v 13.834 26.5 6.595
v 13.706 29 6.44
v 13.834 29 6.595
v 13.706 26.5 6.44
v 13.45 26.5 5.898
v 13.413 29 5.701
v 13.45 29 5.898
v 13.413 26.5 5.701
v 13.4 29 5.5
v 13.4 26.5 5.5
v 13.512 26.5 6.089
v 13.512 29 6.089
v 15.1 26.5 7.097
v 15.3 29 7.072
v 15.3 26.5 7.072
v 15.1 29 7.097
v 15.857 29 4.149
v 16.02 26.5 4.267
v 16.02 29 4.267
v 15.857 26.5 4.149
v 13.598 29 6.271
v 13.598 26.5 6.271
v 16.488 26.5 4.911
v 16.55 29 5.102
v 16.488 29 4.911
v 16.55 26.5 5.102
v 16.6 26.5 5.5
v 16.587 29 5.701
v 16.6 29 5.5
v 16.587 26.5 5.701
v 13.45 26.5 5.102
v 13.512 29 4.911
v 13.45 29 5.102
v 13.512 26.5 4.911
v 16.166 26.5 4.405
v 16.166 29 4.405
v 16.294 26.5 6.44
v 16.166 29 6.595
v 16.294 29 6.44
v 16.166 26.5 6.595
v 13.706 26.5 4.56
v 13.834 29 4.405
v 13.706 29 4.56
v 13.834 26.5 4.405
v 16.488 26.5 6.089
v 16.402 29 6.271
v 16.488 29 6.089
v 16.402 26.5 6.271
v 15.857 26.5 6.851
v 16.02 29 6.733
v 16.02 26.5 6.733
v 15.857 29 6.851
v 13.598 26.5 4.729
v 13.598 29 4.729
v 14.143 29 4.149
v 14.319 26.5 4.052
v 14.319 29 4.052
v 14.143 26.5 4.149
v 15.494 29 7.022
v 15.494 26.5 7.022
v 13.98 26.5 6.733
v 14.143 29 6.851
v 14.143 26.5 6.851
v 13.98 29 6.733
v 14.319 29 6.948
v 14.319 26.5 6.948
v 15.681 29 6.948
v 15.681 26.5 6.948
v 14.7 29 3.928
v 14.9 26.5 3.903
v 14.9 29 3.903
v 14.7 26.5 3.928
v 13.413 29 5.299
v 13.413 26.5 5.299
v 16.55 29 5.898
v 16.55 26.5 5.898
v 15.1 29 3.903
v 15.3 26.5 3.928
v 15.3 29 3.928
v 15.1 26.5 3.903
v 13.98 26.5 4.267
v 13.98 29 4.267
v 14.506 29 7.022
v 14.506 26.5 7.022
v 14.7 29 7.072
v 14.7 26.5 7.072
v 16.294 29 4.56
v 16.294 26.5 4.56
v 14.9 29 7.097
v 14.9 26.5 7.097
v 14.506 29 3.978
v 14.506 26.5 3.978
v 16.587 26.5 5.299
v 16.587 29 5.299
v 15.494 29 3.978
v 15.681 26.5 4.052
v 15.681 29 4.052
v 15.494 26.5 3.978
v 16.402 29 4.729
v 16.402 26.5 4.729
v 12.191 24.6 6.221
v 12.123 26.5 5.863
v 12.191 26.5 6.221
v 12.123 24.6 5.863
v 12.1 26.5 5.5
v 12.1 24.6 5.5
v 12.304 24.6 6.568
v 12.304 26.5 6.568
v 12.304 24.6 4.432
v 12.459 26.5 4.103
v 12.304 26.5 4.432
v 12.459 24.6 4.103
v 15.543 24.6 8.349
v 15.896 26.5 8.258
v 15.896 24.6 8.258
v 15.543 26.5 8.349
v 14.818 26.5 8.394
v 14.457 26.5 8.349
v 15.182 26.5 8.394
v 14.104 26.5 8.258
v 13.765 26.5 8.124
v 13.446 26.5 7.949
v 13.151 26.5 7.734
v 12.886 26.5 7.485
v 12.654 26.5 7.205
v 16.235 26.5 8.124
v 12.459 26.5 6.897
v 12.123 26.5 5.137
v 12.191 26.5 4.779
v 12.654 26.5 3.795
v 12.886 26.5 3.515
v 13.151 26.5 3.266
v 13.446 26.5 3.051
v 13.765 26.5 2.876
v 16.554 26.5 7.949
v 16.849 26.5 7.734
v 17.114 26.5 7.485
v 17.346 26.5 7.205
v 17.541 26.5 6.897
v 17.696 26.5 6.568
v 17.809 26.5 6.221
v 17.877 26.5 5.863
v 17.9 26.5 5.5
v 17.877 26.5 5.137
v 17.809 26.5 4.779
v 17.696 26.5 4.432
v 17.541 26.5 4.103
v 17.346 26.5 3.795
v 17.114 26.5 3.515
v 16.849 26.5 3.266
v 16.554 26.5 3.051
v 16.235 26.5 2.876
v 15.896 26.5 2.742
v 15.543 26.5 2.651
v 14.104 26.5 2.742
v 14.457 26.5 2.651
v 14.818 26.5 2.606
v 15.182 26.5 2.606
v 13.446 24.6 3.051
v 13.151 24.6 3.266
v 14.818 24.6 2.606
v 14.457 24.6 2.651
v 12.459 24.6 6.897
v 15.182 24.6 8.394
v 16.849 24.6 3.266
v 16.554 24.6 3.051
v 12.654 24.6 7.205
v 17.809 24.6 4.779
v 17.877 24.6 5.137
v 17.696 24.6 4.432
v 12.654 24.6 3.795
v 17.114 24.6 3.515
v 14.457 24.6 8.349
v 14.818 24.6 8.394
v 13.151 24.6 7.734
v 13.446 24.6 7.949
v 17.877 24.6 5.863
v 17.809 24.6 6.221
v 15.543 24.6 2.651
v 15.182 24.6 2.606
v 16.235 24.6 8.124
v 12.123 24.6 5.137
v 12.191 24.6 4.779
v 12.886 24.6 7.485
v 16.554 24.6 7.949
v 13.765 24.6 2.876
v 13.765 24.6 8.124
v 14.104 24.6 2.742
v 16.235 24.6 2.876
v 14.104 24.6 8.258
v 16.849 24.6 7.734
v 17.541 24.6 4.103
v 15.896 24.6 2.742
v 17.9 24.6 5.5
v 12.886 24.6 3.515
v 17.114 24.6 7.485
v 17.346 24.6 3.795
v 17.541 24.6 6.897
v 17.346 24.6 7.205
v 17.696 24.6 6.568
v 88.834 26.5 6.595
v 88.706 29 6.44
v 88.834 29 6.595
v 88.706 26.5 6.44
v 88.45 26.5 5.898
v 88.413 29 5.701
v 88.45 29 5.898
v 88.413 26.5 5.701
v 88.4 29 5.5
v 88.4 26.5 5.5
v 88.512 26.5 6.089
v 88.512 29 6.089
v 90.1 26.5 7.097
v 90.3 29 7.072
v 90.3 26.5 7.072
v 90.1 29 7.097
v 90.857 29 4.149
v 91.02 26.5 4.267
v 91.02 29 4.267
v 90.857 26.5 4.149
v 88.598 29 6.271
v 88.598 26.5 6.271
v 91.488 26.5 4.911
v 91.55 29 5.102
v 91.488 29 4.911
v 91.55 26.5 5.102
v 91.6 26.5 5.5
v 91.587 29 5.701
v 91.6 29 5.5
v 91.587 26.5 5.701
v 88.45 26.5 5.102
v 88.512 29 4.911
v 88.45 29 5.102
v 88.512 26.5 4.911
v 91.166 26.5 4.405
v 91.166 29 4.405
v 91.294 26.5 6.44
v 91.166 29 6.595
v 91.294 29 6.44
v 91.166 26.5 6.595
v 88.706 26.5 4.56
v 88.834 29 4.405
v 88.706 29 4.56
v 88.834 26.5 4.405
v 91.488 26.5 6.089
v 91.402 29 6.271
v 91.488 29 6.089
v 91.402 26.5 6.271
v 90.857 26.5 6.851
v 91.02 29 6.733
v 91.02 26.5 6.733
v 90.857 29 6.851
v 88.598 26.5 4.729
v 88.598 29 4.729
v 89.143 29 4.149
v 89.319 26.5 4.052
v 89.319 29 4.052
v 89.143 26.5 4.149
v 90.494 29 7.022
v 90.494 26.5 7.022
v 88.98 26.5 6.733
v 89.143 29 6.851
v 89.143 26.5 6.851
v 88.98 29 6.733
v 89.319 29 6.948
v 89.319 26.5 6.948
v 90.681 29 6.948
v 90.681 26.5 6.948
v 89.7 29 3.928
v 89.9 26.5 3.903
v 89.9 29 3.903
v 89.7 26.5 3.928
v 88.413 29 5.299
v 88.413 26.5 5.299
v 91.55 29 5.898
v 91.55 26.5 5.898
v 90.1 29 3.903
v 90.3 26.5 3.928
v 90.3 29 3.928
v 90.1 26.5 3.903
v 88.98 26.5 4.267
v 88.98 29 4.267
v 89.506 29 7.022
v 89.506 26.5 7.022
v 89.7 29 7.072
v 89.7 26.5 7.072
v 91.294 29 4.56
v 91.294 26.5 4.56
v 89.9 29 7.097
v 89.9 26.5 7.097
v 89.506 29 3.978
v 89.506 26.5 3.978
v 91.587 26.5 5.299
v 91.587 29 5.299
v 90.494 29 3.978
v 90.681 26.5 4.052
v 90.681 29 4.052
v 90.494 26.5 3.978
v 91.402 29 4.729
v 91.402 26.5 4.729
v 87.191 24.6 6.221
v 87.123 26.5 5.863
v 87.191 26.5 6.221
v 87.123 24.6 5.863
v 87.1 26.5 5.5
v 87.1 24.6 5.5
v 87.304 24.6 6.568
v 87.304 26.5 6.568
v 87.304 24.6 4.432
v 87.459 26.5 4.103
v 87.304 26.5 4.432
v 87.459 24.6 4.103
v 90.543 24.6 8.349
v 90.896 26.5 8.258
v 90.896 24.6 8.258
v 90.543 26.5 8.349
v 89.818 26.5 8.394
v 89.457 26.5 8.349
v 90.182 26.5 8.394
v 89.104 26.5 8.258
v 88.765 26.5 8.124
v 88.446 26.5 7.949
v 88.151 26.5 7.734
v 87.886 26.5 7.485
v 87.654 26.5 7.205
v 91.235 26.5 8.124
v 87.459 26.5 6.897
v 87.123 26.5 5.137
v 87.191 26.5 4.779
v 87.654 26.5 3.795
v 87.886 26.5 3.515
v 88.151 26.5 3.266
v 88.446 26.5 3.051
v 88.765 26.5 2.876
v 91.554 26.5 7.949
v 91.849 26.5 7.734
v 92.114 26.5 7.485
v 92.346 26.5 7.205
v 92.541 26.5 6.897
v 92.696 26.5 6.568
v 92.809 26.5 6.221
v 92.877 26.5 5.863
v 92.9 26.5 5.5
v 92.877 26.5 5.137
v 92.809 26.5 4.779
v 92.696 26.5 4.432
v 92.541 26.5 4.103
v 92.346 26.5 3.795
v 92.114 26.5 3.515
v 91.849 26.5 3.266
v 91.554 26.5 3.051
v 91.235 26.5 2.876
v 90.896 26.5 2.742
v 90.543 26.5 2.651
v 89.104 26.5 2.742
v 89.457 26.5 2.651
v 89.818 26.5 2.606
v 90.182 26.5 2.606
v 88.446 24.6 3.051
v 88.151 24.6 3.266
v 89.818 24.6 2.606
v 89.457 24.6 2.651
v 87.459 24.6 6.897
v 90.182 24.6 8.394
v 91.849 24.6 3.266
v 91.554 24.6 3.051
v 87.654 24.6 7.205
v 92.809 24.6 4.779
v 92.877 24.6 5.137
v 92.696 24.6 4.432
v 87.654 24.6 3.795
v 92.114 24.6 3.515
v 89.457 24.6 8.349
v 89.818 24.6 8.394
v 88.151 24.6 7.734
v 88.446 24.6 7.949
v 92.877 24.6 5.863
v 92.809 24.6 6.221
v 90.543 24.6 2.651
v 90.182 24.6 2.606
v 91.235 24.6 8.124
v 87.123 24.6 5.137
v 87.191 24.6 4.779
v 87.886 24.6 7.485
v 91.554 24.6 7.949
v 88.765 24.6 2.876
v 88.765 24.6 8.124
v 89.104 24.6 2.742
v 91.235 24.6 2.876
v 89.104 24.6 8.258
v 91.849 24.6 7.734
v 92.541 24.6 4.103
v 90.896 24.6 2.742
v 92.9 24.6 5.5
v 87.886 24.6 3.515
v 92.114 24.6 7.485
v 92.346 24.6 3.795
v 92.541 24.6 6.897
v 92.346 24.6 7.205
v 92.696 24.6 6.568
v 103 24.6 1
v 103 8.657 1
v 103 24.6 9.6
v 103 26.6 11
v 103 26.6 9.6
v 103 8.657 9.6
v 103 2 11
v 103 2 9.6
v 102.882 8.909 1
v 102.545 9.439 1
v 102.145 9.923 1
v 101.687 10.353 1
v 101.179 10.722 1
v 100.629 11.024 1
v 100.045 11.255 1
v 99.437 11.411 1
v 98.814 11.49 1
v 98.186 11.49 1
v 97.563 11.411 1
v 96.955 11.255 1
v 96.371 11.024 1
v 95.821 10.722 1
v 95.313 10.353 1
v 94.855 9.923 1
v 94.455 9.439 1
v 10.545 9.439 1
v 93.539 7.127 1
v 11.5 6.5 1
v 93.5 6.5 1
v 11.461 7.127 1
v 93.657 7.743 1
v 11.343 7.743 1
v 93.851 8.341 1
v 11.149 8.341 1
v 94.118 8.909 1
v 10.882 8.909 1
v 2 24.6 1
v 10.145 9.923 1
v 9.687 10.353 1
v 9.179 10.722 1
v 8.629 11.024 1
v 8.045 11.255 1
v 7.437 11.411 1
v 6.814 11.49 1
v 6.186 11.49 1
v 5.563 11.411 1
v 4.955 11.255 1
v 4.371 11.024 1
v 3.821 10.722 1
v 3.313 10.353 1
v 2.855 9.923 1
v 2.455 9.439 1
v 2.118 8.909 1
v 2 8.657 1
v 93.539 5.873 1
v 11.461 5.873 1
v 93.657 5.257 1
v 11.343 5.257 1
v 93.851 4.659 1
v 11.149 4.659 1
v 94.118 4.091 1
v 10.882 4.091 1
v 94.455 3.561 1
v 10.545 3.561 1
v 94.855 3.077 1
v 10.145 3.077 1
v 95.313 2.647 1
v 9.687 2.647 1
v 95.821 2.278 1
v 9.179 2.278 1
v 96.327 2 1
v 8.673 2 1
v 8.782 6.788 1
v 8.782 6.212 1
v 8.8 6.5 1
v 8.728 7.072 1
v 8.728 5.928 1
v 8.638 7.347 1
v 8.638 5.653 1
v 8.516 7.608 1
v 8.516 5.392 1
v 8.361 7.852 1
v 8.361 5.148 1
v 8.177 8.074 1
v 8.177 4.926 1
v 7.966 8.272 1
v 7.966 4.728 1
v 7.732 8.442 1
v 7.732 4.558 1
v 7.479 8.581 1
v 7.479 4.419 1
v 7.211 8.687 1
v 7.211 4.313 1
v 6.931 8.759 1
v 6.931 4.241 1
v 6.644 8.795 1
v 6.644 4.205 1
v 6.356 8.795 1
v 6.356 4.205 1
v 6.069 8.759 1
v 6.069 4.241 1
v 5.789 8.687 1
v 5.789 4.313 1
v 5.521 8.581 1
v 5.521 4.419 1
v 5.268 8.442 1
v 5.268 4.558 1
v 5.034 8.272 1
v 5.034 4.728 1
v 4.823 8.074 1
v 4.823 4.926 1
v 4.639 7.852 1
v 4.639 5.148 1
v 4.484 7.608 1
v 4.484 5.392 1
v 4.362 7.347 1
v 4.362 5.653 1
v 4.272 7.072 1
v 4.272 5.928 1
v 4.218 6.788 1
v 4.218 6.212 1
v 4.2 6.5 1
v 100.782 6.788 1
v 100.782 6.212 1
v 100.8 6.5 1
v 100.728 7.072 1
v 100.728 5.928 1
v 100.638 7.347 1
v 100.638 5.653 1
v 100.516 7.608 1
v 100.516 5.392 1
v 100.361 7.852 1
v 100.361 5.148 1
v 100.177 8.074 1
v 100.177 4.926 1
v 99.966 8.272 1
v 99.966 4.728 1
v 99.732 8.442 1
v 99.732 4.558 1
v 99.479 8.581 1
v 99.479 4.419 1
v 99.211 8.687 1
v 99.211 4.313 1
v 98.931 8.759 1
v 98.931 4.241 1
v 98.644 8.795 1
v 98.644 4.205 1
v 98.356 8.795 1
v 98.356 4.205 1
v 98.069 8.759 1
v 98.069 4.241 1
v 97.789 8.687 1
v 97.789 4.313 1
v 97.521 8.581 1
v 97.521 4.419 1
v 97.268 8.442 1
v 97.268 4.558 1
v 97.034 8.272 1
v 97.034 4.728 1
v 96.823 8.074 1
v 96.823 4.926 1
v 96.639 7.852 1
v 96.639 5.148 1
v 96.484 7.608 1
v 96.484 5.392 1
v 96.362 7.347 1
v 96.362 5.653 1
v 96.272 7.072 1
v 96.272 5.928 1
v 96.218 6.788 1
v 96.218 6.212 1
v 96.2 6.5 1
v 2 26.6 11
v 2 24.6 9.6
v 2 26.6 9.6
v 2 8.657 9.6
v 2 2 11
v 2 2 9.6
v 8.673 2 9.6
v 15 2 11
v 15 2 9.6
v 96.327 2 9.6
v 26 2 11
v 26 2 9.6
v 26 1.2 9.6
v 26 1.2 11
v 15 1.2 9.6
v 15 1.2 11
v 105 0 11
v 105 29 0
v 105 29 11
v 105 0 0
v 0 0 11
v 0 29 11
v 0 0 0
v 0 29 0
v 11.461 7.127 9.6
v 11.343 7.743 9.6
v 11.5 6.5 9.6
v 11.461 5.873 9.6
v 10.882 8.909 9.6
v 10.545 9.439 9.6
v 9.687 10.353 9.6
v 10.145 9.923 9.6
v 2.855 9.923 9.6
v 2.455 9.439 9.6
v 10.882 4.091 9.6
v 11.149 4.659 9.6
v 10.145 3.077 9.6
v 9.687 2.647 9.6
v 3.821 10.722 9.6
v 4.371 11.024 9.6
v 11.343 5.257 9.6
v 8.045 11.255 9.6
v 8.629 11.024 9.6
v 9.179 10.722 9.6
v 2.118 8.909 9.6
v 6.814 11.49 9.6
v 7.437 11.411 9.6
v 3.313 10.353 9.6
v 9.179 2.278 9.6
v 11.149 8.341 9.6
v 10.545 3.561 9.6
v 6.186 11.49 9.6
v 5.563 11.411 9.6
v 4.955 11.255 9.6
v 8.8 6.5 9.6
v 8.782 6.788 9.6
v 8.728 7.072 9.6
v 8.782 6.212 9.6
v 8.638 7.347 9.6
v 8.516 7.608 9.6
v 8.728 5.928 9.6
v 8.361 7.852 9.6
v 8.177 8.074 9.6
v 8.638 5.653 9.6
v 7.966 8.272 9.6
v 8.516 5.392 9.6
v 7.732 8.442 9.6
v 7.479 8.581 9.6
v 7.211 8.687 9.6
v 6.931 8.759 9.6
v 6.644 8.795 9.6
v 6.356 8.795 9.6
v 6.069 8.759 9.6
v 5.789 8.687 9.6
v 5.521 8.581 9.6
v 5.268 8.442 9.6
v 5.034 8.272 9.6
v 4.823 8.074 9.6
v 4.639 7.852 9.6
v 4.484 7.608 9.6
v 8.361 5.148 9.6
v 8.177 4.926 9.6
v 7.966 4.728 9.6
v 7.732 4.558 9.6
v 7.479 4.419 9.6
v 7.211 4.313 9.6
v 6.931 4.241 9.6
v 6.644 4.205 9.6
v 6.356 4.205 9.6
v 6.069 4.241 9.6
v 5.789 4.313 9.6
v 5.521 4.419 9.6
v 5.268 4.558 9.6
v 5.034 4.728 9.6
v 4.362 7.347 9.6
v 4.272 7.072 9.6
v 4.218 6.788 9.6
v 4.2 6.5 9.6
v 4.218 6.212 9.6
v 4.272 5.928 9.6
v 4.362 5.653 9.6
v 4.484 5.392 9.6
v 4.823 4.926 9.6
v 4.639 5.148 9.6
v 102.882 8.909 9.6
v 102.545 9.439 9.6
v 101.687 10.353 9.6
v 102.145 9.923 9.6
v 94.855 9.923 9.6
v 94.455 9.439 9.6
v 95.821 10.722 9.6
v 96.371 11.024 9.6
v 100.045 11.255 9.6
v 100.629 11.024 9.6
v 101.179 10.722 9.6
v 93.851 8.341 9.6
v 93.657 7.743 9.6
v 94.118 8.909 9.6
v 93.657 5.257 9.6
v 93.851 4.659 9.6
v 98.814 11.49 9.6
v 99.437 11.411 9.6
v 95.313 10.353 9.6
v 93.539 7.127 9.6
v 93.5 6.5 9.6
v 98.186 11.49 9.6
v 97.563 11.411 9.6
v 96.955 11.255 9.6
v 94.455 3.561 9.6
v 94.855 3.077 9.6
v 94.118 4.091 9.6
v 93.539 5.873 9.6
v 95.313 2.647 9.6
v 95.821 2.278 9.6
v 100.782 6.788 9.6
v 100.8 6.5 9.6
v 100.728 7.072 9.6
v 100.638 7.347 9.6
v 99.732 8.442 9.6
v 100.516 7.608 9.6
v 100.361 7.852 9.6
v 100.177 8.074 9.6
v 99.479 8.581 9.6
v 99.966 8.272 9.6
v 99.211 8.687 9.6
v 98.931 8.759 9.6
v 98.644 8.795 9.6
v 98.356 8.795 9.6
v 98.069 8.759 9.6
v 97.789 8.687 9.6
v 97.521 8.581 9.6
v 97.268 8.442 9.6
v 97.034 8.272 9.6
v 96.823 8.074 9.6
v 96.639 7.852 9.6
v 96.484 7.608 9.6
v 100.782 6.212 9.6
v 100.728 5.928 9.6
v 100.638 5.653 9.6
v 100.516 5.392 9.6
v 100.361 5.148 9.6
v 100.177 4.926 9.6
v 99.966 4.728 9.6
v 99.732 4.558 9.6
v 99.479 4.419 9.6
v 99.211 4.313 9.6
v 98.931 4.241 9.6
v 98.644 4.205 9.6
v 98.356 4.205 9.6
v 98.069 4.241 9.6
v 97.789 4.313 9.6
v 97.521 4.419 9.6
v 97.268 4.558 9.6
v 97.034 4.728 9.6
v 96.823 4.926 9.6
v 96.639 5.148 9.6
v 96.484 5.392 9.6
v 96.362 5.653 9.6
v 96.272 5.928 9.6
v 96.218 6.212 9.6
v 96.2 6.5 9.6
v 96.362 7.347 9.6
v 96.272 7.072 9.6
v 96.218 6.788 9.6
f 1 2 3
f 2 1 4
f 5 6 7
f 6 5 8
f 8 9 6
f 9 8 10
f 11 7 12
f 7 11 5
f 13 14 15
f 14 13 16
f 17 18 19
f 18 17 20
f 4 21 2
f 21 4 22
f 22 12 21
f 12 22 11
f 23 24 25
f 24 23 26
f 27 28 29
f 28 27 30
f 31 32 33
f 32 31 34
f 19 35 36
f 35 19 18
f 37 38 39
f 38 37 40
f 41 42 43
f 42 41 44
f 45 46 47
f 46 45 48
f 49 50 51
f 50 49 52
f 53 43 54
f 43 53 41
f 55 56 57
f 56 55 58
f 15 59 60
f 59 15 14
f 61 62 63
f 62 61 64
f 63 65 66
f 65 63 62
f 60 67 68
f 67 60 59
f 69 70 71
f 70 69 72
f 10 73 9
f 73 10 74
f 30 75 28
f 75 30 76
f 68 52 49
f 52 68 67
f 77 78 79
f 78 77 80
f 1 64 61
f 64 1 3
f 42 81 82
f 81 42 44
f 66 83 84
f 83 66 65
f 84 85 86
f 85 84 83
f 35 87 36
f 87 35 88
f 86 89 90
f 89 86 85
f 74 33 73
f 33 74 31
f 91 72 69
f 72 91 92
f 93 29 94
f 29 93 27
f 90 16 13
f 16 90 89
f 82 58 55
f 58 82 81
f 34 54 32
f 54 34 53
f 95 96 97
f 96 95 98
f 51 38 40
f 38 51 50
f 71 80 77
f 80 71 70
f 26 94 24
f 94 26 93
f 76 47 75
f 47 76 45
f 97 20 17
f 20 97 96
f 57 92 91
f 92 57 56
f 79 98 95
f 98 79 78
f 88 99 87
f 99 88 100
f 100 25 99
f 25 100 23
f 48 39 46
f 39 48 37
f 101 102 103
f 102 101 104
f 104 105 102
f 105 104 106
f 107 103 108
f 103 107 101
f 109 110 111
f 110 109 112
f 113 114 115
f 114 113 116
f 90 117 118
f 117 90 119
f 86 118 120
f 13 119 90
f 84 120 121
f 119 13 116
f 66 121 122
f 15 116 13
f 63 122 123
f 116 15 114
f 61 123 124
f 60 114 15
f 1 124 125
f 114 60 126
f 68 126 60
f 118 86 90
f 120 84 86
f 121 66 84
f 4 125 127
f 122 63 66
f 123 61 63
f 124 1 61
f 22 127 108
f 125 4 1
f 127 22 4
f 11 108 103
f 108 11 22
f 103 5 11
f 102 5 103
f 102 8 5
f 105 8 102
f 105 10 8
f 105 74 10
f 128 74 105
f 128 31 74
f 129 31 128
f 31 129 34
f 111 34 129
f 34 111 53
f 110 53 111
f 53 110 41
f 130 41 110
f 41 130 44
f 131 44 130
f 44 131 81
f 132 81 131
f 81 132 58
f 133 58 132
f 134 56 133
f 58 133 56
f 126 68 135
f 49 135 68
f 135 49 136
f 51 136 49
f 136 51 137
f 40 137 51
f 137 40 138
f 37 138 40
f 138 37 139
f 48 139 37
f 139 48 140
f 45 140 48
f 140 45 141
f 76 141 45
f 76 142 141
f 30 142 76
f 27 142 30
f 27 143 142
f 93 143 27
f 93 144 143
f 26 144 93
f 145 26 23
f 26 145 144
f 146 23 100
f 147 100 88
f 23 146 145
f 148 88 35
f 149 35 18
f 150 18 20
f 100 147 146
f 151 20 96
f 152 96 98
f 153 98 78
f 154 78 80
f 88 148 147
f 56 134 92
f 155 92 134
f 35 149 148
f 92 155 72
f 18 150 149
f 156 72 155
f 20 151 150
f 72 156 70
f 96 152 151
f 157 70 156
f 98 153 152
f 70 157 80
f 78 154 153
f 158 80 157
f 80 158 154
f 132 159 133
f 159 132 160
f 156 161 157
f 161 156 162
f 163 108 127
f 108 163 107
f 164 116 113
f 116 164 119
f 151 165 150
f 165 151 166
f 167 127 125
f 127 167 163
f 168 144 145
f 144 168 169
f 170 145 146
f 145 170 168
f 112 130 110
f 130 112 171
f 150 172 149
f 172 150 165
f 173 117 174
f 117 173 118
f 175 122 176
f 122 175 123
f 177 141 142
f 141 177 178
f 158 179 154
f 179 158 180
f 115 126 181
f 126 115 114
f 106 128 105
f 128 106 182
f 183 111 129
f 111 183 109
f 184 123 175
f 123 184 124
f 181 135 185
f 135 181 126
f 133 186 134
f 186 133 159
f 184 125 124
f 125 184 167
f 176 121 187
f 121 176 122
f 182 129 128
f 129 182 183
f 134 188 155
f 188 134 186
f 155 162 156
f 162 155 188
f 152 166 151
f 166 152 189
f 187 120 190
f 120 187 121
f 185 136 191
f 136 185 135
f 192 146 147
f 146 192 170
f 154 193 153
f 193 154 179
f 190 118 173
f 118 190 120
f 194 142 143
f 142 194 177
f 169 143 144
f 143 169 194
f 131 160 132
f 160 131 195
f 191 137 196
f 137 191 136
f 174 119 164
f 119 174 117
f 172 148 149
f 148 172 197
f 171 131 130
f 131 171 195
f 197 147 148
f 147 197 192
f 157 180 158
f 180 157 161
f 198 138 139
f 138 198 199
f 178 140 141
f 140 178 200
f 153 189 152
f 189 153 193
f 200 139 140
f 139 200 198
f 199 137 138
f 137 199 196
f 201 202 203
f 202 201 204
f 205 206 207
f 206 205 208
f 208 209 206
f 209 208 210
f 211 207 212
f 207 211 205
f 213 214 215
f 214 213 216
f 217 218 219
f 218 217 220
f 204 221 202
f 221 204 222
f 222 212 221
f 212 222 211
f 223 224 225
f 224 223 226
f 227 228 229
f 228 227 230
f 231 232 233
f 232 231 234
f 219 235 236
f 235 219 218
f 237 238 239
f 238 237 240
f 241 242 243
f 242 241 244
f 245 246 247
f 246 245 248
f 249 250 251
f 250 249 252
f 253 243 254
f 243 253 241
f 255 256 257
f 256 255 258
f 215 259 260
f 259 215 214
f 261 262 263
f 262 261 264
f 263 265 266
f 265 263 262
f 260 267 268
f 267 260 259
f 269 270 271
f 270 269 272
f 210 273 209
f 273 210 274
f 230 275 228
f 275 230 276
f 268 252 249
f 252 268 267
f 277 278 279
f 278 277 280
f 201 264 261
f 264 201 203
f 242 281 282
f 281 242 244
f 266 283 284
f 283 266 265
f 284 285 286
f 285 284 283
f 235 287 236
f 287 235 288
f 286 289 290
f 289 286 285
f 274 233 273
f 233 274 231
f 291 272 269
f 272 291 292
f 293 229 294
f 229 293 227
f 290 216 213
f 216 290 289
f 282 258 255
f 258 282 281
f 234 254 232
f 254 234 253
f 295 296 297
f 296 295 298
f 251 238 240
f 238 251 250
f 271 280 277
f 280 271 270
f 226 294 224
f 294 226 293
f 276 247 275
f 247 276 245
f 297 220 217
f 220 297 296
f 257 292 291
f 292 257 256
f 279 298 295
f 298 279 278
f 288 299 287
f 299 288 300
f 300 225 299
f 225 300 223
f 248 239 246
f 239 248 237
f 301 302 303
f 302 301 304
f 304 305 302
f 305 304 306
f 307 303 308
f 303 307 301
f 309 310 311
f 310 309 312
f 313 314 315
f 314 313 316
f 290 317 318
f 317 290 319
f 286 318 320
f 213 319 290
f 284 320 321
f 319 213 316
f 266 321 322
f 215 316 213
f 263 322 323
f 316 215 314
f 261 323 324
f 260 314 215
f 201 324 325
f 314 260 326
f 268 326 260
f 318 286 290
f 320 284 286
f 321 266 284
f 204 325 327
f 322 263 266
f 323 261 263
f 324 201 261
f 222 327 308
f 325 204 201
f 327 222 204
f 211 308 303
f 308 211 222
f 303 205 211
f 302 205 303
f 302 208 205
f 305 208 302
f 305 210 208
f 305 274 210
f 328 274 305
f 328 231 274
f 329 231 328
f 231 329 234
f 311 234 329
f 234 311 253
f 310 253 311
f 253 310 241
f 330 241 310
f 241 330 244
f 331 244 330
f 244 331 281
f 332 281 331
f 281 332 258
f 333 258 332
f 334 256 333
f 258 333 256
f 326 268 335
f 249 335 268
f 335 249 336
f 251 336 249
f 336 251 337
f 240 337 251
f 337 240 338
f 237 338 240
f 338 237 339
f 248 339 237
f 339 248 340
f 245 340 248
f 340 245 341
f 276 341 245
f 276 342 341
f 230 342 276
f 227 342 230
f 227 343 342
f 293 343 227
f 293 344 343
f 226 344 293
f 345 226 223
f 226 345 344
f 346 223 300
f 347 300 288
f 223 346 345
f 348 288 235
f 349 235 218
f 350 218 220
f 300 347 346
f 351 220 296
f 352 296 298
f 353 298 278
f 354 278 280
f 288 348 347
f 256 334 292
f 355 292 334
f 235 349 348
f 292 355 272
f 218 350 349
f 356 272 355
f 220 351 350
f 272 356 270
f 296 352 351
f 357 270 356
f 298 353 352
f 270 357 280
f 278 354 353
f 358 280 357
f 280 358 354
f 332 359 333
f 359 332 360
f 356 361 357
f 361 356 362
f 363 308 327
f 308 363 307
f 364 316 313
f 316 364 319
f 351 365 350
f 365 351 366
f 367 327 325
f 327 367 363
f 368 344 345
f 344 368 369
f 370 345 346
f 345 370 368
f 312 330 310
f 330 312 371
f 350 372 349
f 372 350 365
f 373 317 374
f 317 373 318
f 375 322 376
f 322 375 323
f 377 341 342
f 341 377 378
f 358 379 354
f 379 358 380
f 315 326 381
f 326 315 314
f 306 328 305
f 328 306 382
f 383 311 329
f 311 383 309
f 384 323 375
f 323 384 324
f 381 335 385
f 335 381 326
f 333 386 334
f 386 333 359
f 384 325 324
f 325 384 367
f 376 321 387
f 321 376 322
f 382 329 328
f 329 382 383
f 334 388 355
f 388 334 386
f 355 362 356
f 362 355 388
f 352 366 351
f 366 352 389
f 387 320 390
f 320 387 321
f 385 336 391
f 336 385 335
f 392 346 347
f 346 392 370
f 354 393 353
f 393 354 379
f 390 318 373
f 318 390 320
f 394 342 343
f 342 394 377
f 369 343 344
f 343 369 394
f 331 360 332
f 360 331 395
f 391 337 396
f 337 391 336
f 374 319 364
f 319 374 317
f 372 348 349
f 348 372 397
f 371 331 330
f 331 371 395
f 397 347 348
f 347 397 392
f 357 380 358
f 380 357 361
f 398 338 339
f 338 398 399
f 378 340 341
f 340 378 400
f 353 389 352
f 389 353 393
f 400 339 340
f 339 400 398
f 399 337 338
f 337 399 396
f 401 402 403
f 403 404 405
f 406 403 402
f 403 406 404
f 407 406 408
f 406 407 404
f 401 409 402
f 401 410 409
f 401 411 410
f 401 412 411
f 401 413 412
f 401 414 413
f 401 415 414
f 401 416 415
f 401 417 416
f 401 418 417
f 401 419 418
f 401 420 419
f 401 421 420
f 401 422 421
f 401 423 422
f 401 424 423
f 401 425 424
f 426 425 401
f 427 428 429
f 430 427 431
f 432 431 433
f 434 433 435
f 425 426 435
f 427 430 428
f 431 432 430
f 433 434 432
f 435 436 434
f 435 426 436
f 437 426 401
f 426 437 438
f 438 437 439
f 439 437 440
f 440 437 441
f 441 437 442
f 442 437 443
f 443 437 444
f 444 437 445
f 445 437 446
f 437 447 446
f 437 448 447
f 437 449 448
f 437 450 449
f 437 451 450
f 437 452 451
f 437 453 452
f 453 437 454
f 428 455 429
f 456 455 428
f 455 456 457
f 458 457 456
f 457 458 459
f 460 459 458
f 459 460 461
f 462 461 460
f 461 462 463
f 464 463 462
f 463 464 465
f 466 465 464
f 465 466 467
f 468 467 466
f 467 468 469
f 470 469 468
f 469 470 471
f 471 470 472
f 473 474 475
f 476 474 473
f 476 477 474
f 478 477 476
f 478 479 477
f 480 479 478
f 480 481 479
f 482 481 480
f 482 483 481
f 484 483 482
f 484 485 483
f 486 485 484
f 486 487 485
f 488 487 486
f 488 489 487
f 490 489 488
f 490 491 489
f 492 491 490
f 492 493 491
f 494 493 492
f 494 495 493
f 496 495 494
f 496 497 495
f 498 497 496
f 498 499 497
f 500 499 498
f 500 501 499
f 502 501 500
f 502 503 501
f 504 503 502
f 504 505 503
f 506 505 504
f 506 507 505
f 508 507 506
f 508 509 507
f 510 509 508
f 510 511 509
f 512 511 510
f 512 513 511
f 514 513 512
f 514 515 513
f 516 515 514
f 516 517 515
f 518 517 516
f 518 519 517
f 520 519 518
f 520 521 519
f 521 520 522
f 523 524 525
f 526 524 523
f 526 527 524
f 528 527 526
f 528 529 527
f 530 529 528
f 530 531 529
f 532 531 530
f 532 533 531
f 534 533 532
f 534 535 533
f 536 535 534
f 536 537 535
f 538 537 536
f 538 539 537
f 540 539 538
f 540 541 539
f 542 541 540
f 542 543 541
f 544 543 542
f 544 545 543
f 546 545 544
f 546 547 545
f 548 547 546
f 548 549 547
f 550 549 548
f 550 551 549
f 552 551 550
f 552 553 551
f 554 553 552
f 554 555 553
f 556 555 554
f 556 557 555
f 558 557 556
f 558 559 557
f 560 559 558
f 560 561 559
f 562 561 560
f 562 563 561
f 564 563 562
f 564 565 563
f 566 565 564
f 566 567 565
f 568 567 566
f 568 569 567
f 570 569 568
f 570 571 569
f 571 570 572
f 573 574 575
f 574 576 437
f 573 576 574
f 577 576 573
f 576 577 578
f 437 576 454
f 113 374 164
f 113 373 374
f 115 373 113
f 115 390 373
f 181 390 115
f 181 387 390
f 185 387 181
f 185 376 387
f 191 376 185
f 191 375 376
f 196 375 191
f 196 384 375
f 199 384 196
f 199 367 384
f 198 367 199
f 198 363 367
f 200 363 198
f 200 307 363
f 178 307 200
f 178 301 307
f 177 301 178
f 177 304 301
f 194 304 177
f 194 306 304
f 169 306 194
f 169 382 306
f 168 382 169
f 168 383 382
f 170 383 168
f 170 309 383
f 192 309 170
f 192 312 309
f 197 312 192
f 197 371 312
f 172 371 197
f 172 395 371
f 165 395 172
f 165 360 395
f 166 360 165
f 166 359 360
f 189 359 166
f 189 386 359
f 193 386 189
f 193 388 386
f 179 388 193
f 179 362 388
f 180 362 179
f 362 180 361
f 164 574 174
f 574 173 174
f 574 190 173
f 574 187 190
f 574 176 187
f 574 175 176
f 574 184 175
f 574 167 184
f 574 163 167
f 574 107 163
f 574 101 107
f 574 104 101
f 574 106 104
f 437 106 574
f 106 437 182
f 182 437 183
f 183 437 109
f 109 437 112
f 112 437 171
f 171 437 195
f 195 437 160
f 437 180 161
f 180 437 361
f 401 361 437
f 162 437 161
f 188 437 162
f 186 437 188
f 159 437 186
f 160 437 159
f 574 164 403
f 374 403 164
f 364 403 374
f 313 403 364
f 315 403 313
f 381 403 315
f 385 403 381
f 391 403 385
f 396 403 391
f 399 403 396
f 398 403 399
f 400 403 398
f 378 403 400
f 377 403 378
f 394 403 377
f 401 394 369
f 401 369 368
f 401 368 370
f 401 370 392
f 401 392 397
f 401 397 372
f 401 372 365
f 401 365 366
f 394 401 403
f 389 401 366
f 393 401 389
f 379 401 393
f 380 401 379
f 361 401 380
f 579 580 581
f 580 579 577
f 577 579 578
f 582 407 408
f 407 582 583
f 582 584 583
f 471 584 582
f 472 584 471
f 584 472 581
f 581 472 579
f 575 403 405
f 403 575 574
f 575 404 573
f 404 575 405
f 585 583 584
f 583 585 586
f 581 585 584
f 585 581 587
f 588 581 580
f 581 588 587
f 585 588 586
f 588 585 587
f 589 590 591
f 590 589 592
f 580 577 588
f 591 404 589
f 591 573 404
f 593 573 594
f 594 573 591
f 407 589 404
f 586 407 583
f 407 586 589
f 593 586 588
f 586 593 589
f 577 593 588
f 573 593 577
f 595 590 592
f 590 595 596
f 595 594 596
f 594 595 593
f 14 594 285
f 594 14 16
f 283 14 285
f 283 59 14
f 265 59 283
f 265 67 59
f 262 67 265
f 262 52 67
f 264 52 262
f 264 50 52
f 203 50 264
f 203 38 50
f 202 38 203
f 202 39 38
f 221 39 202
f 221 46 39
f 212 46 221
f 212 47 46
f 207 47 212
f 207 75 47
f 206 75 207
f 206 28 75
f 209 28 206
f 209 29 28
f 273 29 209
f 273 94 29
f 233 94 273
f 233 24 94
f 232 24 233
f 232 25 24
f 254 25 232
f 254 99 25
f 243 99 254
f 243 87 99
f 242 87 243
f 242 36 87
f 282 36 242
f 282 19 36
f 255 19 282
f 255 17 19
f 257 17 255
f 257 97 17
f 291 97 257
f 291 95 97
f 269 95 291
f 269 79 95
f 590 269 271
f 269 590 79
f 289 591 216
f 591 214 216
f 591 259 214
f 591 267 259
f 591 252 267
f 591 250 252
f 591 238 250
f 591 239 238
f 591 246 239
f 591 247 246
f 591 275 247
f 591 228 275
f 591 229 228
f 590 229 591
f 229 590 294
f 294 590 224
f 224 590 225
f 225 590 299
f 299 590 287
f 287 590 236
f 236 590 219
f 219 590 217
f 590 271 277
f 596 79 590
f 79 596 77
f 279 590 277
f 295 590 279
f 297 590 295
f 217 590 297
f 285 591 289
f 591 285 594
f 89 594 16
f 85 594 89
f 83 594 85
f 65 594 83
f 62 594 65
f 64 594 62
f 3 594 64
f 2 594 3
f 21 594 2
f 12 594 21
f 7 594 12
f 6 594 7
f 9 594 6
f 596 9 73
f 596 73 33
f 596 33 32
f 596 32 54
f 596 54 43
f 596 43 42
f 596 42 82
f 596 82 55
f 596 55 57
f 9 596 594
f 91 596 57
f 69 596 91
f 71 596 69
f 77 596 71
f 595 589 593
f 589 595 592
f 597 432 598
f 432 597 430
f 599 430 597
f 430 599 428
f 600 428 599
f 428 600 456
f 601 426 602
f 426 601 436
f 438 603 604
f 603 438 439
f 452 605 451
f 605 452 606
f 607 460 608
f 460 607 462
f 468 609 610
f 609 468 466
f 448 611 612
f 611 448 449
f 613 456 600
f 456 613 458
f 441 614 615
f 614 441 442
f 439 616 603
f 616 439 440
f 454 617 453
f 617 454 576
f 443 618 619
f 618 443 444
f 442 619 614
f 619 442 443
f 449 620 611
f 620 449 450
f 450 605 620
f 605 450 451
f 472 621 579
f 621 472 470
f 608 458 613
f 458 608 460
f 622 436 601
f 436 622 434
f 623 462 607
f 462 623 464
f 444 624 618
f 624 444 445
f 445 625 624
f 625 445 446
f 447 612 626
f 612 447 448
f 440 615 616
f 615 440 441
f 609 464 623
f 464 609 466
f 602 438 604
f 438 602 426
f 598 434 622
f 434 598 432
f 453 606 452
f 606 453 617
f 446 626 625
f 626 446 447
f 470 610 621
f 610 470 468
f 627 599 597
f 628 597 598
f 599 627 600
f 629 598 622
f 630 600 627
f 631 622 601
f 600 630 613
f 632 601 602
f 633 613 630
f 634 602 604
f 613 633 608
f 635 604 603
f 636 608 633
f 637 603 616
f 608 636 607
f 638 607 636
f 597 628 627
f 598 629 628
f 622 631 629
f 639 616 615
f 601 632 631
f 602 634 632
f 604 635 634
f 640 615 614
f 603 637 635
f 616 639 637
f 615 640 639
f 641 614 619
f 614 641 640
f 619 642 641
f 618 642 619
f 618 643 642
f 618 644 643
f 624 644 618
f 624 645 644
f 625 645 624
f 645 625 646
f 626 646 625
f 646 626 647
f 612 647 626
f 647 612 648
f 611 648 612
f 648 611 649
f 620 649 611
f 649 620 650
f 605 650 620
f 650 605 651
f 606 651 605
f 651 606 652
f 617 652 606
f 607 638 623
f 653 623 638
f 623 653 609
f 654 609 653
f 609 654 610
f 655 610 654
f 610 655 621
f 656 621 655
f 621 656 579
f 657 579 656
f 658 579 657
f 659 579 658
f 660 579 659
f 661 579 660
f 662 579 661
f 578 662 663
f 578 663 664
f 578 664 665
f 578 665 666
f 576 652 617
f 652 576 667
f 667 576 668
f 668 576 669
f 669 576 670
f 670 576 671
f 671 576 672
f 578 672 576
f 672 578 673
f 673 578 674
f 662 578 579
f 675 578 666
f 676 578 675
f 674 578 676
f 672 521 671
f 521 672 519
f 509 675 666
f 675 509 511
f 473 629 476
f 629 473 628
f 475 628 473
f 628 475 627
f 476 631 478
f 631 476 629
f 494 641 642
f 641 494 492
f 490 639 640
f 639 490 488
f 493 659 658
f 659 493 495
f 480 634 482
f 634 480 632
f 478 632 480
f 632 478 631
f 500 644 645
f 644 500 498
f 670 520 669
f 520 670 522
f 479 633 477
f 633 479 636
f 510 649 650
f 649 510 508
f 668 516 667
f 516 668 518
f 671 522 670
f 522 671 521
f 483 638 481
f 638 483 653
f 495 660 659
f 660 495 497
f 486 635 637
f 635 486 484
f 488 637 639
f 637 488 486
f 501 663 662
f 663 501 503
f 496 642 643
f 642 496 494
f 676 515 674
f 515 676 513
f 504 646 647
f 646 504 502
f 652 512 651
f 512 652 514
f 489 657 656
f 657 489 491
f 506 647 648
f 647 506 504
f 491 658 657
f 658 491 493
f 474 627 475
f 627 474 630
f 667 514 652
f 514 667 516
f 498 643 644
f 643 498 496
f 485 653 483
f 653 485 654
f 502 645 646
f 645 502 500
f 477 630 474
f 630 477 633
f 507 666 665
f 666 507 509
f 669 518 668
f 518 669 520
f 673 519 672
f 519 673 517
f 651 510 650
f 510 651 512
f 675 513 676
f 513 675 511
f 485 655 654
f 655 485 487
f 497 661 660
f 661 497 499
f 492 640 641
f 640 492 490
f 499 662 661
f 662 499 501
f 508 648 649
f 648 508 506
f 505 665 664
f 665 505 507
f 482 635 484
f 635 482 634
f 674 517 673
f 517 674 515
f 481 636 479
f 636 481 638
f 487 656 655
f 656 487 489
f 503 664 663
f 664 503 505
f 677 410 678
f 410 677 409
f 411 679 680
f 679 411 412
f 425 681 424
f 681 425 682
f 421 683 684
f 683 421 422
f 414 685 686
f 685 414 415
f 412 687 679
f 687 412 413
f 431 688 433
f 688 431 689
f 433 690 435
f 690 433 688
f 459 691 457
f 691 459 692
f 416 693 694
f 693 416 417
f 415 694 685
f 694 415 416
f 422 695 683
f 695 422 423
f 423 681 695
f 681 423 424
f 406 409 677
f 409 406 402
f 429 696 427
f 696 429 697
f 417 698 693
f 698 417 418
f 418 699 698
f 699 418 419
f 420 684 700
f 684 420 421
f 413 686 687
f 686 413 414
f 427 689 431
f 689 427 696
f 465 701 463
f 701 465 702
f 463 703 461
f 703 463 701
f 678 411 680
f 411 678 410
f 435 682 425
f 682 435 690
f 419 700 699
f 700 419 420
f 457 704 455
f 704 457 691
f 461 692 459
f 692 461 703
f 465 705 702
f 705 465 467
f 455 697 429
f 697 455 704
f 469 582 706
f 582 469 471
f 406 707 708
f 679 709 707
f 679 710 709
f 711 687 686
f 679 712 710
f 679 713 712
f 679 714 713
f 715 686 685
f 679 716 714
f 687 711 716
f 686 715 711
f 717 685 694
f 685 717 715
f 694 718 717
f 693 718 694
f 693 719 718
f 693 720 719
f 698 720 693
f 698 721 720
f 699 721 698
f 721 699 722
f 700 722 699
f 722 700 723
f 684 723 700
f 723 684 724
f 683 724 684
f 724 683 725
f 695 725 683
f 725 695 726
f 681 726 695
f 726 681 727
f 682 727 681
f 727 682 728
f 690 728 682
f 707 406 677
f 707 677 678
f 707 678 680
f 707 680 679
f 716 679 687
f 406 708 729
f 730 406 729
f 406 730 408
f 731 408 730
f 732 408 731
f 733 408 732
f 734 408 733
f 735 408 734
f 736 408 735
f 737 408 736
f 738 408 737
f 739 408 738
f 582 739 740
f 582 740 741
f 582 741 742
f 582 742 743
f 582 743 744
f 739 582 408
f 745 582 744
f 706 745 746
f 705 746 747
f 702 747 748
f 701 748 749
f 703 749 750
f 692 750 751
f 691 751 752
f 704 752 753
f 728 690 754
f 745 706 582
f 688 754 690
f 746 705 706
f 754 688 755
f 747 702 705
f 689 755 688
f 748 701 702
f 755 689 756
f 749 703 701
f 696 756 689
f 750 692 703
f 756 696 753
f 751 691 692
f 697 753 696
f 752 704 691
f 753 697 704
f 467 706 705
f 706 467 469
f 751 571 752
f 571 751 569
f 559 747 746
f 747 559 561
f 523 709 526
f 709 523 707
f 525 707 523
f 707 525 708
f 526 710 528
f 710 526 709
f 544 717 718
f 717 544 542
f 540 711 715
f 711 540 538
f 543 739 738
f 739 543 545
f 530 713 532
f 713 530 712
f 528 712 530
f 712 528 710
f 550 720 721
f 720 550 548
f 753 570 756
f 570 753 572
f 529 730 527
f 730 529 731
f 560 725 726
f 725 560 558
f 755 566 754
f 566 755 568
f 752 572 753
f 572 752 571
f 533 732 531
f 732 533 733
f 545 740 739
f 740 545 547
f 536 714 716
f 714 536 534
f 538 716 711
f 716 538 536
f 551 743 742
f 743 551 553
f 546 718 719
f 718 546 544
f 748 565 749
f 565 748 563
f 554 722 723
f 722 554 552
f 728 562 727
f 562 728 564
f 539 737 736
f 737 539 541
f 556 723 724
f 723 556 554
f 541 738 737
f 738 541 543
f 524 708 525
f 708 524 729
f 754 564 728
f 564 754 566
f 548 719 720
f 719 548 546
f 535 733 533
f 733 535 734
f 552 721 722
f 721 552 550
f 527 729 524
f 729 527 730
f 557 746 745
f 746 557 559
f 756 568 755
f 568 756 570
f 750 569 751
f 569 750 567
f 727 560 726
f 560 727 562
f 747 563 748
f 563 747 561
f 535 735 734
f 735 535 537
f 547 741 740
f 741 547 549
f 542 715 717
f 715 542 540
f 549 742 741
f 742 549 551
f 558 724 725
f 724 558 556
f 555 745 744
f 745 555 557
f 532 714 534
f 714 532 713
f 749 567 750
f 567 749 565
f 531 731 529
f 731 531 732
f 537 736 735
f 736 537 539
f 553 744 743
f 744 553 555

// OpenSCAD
difference()  {
    // Base dimentions from https://www.printables.com/model/228244-klipper-expander-mount-for-aluminum-extrusions
    cube([105, 29, 11]);
    
    // 2020 mounting hole
    translate([15,29-5,5.5]) {
        rotate([90,0,180]) {
            union() {
                cylinder(h = 6, d = 3.2, $fn = 50);
                cylinder(h = 2.5, d = 5.8, $fn = 50);
            }
        }
    }
    
    // 2020 mounting hole
    translate([105-15,29-5,5.5]) {
        rotate([90,0,180]) {
            union() {
                cylinder(h = 6, d = 3.2, $fn = 50);
                cylinder(h = 2.5, d = 5.8, $fn = 50);
            }
        }
    }
    
    union()  {
        // Interior empty space
        translate([2,2,1]) {
            cube([101, 22.6, 11]);
        }
        
        // The Klipper Expander bounding box.
        translate([2, 2, 9.6]) {
            cube([101, 24.6, 20]);
        }
        
        // USB cutout
        translate([15, 1.2, 9.6]) {
            cube([11, 10, 2]);
        }
    };
};

// mounting posts
translate([6.5, 6.5, 0]) {
    union() {
        difference() {
            cylinder(h = 9.6, d = 10, $fn = 50);
            cylinder(h = 11, d = 4.6, $fn = 50);
        }
        
        translate([-6, -6, 0]) {
            cube([4,4,9.6]);
        }
    }
}

translate([105 - 6.5, 6.5, 0]) {
    union() {
        difference() {
            cylinder(h = 9.6, d = 10, $fn = 50);
            cylinder(h = 11, d = 4.6, $fn = 50);
        }
        
        translate([2, -6, 0]) {
            cube([4,4,9.6]);
        }
    }
}
